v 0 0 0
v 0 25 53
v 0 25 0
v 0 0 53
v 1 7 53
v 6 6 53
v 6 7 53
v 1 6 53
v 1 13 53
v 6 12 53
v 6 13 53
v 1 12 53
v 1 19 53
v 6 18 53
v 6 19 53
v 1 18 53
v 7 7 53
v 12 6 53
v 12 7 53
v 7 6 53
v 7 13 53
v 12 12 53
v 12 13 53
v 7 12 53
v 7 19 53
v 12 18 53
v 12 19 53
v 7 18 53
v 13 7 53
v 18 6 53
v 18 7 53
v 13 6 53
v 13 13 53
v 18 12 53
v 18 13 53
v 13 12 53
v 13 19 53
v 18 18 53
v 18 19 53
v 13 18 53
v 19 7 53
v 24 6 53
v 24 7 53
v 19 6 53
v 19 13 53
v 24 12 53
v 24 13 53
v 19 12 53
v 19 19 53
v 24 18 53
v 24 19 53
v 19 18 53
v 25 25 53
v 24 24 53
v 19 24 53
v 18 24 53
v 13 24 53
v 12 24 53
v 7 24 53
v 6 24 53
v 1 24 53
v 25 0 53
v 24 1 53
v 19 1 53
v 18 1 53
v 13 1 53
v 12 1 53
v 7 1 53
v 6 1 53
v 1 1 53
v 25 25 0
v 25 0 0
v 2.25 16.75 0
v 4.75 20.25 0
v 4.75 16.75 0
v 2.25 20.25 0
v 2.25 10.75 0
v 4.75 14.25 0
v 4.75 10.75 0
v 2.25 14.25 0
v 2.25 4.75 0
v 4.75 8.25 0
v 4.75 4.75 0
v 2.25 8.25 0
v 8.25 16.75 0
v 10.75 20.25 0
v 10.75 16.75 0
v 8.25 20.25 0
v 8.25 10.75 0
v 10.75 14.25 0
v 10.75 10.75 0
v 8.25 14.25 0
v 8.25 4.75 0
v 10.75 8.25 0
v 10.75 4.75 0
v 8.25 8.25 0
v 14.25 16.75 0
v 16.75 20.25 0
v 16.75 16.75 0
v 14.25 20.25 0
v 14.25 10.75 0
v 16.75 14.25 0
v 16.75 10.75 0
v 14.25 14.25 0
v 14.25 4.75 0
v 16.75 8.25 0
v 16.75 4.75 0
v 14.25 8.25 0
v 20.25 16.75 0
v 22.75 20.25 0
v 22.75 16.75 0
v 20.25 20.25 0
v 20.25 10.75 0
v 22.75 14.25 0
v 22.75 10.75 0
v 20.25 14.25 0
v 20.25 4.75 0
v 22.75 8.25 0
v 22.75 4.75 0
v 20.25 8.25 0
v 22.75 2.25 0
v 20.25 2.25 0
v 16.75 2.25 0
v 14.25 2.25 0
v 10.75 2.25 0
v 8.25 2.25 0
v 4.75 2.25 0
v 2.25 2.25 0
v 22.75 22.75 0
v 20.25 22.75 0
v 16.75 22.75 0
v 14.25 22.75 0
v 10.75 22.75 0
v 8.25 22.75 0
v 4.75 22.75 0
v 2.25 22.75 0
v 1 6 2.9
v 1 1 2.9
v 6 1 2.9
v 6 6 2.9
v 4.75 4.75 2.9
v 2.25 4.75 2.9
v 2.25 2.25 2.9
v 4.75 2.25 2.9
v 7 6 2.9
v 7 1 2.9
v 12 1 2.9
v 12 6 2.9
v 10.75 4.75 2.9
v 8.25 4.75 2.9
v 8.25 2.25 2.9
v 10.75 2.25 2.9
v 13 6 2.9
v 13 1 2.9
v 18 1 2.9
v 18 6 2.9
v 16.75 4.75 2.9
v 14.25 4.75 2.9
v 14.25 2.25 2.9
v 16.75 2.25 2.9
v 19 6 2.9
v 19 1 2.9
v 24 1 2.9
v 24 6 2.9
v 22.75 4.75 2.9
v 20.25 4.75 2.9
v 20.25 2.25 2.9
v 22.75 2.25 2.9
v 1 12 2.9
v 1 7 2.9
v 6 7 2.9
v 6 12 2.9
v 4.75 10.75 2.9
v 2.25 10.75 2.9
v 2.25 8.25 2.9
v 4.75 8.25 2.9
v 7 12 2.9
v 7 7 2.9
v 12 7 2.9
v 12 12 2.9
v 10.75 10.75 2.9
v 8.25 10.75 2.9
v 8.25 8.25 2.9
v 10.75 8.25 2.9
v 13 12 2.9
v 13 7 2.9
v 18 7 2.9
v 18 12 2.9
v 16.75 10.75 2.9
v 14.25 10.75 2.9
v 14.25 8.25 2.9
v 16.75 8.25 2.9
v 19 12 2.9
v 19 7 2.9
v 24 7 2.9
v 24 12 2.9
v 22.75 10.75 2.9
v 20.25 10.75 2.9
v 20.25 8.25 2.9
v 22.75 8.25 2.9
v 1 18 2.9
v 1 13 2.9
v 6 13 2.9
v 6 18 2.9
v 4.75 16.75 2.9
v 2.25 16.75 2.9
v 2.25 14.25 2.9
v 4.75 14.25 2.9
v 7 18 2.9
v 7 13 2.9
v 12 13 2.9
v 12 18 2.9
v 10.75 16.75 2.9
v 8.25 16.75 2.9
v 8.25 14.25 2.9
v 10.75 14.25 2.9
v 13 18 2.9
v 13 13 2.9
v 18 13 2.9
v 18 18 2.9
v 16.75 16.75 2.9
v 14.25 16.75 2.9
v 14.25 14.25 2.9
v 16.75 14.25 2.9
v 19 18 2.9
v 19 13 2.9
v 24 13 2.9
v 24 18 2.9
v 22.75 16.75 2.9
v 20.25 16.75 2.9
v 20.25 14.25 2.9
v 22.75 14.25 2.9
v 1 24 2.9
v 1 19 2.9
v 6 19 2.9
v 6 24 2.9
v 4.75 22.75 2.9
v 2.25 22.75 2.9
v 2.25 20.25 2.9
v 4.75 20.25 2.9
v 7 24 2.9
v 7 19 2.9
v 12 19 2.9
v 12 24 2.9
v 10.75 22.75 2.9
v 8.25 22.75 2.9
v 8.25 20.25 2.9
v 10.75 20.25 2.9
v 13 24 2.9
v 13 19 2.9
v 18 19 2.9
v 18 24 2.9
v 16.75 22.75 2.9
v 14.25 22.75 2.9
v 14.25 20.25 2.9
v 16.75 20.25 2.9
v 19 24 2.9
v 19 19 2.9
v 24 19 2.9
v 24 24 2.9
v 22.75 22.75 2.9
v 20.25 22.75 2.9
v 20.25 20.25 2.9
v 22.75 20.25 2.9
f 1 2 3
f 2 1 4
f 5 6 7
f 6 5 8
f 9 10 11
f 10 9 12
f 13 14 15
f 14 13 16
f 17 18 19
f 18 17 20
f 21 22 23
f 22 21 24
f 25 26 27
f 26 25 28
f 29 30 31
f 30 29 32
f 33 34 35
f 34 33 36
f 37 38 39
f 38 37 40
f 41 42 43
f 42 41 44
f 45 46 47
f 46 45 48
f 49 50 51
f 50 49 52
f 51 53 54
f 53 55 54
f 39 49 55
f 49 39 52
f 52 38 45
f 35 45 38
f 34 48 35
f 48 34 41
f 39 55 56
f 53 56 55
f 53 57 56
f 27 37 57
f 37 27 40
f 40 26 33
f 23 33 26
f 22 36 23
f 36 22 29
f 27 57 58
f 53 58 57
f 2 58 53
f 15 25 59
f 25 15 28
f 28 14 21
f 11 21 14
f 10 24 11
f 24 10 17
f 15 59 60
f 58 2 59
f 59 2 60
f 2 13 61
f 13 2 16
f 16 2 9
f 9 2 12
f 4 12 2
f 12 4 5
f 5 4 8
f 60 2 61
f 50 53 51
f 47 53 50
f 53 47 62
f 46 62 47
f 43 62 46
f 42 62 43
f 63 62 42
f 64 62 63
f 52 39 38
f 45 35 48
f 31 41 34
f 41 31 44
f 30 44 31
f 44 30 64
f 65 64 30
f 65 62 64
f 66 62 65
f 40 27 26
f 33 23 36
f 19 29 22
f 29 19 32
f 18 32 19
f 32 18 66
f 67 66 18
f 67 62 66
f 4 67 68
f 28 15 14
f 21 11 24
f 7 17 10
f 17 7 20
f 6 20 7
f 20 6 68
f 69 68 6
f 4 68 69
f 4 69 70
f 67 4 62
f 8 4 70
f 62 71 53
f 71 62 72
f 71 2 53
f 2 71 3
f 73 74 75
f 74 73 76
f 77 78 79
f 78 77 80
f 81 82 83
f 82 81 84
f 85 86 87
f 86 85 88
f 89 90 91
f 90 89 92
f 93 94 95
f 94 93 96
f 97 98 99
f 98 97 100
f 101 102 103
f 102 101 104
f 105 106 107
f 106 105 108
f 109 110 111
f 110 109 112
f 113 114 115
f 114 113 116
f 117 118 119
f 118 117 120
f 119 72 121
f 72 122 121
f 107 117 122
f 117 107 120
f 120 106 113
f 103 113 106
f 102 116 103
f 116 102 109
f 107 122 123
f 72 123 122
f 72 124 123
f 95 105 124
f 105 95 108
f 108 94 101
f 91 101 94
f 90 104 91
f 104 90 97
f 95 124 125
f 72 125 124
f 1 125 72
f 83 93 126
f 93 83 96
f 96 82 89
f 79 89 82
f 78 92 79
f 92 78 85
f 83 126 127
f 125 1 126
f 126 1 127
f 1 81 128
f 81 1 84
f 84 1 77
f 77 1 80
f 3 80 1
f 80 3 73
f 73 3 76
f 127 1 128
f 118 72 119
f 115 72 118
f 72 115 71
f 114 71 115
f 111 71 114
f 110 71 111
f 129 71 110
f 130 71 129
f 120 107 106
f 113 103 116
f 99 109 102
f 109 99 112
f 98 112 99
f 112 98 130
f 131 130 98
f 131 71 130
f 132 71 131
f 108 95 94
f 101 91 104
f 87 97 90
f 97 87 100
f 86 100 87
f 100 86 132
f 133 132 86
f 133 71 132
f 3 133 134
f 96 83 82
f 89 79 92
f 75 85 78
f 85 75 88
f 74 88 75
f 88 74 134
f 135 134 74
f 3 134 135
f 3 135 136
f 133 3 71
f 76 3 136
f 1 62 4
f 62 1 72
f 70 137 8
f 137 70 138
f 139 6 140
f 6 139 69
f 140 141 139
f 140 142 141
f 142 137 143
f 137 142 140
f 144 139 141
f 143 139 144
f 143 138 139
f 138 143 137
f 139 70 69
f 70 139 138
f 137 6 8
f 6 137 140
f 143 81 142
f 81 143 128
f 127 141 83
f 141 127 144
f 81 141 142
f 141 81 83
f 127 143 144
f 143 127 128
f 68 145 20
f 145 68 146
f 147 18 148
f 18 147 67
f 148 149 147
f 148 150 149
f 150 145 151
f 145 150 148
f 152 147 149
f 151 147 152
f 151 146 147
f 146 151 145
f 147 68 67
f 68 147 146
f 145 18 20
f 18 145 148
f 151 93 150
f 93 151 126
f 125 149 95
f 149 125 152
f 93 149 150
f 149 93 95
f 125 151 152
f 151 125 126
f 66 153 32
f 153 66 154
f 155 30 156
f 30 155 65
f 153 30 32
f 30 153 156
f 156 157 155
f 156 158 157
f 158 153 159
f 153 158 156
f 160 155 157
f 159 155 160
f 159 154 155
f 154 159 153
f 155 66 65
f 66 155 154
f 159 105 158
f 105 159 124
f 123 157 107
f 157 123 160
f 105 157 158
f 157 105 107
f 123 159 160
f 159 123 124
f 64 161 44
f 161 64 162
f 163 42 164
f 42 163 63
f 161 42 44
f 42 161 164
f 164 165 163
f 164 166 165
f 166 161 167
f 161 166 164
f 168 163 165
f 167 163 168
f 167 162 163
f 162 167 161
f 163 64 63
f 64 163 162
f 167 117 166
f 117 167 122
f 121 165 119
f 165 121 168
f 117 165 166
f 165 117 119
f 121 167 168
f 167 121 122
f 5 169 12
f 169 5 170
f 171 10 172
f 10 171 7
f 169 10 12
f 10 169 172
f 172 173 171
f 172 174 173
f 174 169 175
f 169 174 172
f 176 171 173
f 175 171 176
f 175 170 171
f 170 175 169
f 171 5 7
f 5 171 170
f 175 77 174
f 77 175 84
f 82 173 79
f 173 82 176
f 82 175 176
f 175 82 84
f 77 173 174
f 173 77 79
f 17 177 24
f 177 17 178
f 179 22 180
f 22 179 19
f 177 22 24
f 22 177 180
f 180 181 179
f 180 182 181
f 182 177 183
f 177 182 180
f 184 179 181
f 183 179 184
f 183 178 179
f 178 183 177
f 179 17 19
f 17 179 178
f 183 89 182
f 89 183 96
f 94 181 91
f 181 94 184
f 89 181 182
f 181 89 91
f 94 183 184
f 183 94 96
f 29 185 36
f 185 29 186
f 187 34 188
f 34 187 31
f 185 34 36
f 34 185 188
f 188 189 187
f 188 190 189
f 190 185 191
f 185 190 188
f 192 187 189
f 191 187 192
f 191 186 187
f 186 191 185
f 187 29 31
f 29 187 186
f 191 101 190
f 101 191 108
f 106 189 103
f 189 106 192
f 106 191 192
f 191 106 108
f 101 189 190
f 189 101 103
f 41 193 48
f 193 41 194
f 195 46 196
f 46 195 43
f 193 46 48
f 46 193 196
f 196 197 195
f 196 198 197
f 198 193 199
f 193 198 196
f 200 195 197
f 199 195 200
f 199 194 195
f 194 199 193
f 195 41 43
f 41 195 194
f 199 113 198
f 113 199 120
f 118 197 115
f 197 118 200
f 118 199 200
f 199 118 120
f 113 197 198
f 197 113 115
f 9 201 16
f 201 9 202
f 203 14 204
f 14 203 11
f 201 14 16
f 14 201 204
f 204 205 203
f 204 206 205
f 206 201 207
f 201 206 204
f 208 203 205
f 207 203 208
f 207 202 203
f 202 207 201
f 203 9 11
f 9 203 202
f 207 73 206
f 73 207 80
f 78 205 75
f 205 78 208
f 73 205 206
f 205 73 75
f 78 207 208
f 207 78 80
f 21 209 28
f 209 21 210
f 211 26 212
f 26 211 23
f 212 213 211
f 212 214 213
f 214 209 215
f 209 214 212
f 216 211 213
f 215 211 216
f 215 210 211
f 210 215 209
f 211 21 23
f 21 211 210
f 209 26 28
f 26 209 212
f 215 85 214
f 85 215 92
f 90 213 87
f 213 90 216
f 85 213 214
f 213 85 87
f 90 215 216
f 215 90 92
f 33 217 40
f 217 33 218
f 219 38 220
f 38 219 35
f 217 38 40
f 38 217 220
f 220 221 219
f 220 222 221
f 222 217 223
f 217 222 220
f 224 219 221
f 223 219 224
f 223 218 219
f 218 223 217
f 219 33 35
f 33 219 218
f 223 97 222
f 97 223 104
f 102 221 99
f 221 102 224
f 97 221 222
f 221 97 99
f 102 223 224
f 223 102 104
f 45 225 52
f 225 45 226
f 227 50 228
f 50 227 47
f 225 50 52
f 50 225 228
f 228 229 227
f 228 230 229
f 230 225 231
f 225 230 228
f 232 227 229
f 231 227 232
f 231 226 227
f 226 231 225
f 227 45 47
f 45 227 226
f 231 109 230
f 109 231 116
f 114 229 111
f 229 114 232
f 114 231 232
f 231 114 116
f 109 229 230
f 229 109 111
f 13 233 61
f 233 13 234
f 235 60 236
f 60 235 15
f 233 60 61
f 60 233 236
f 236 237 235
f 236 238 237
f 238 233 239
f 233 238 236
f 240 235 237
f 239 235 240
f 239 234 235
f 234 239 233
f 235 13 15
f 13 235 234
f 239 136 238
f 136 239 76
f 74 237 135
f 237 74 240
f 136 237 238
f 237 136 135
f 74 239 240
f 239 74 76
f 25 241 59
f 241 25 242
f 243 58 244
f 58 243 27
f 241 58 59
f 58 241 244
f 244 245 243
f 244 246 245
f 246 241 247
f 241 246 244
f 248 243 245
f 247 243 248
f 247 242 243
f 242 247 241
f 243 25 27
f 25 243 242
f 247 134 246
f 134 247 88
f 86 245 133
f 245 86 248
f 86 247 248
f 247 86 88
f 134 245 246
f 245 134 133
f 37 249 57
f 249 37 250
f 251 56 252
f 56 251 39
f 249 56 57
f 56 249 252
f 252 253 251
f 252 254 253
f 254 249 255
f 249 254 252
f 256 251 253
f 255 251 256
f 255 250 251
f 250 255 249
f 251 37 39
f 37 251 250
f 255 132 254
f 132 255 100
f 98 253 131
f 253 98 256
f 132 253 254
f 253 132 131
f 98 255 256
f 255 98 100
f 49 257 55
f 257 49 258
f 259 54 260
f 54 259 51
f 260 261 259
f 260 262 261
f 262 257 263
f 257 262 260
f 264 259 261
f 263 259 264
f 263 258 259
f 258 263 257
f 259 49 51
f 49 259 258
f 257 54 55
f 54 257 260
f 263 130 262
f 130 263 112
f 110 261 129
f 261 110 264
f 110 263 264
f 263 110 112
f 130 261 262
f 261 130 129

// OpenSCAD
difference() {
	cube(size = [25.0, 25.0, 53.0]);
	translate(v = [1.0, 1.0, 2.9]) {
		cube(size = [5.0, 5.0, 50.2]);
	}
	translate(v = [2.25, 2.25, -0.1]) {
		cube(size = [2.5, 2.5, 3.2]);
	}
	translate(v = [7.0, 1.0, 2.9]) {
		cube(size = [5.0, 5.0, 50.2]);
	}
	translate(v = [8.25, 2.25, -0.1]) {
		cube(size = [2.5, 2.5, 3.2]);
	}
	translate(v = [13.0, 1.0, 2.9]) {
		cube(size = [5.0, 5.0, 50.2]);
	}
	translate(v = [14.25, 2.25, -0.1]) {
		cube(size = [2.5, 2.5, 3.2]);
	}
	translate(v = [19.0, 1.0, 2.9]) {
		cube(size = [5.0, 5.0, 50.2]);
	}
	translate(v = [20.25, 2.25, -0.1]) {
		cube(size = [2.5, 2.5, 3.2]);
	}
	translate(v = [1.0, 7.0, 2.9]) {
		cube(size = [5.0, 5.0, 50.2]);
	}
	translate(v = [2.25, 8.25, -0.1]) {
		cube(size = [2.5, 2.5, 3.2]);
	}
	translate(v = [7.0, 7.0, 2.9]) {
		cube(size = [5.0, 5.0, 50.2]);
	}
	translate(v = [8.25, 8.25, -0.1]) {
		cube(size = [2.5, 2.5, 3.2]);
	}
	translate(v = [13.0, 7.0, 2.9]) {
		cube(size = [5.0, 5.0, 50.2]);
	}
	translate(v = [14.25, 8.25, -0.1]) {
		cube(size = [2.5, 2.5, 3.2]);
	}
	translate(v = [19.0, 7.0, 2.9]) {
		cube(size = [5.0, 5.0, 50.2]);
	}
	translate(v = [20.25, 8.25, -0.1]) {
		cube(size = [2.5, 2.5, 3.2]);
	}
	translate(v = [1.0, 13.0, 2.9]) {
		cube(size = [5.0, 5.0, 50.2]);
	}
	translate(v = [2.25, 14.25, -0.1]) {
		cube(size = [2.5, 2.5, 3.2]);
	}
	translate(v = [7.0, 13.0, 2.9]) {
		cube(size = [5.0, 5.0, 50.2]);
	}
	translate(v = [8.25, 14.25, -0.1]) {
		cube(size = [2.5, 2.5, 3.2]);
	}
	translate(v = [13.0, 13.0, 2.9]) {
		cube(size = [5.0, 5.0, 50.2]);
	}
	translate(v = [14.25, 14.25, -0.1]) {
		cube(size = [2.5, 2.5, 3.2]);
	}
	translate(v = [19.0, 13.0, 2.9]) {
		cube(size = [5.0, 5.0, 50.2]);
	}
	translate(v = [20.25, 14.25, -0.1]) {
		cube(size = [2.5, 2.5, 3.2]);
	}
	translate(v = [1.0, 19.0, 2.9]) {
		cube(size = [5.0, 5.0, 50.2]);
	}
	translate(v = [2.25, 20.25, -0.1]) {
		cube(size = [2.5, 2.5, 3.2]);
	}
	translate(v = [7.0, 19.0, 2.9]) {
		cube(size = [5.0, 5.0, 50.2]);
	}
	translate(v = [8.25, 20.25, -0.1]) {
		cube(size = [2.5, 2.5, 3.2]);
	}
	translate(v = [13.0, 19.0, 2.9]) {
		cube(size = [5.0, 5.0, 50.2]);
	}
	translate(v = [14.25, 20.25, -0.1]) {
		cube(size = [2.5, 2.5, 3.2]);
	}
	translate(v = [19.0, 19.0, 2.9]) {
		cube(size = [5.0, 5.0, 50.2]);
	}
	translate(v = [20.25, 20.25, -0.1]) {
		cube(size = [2.5, 2.5, 3.2]);
	}
}
